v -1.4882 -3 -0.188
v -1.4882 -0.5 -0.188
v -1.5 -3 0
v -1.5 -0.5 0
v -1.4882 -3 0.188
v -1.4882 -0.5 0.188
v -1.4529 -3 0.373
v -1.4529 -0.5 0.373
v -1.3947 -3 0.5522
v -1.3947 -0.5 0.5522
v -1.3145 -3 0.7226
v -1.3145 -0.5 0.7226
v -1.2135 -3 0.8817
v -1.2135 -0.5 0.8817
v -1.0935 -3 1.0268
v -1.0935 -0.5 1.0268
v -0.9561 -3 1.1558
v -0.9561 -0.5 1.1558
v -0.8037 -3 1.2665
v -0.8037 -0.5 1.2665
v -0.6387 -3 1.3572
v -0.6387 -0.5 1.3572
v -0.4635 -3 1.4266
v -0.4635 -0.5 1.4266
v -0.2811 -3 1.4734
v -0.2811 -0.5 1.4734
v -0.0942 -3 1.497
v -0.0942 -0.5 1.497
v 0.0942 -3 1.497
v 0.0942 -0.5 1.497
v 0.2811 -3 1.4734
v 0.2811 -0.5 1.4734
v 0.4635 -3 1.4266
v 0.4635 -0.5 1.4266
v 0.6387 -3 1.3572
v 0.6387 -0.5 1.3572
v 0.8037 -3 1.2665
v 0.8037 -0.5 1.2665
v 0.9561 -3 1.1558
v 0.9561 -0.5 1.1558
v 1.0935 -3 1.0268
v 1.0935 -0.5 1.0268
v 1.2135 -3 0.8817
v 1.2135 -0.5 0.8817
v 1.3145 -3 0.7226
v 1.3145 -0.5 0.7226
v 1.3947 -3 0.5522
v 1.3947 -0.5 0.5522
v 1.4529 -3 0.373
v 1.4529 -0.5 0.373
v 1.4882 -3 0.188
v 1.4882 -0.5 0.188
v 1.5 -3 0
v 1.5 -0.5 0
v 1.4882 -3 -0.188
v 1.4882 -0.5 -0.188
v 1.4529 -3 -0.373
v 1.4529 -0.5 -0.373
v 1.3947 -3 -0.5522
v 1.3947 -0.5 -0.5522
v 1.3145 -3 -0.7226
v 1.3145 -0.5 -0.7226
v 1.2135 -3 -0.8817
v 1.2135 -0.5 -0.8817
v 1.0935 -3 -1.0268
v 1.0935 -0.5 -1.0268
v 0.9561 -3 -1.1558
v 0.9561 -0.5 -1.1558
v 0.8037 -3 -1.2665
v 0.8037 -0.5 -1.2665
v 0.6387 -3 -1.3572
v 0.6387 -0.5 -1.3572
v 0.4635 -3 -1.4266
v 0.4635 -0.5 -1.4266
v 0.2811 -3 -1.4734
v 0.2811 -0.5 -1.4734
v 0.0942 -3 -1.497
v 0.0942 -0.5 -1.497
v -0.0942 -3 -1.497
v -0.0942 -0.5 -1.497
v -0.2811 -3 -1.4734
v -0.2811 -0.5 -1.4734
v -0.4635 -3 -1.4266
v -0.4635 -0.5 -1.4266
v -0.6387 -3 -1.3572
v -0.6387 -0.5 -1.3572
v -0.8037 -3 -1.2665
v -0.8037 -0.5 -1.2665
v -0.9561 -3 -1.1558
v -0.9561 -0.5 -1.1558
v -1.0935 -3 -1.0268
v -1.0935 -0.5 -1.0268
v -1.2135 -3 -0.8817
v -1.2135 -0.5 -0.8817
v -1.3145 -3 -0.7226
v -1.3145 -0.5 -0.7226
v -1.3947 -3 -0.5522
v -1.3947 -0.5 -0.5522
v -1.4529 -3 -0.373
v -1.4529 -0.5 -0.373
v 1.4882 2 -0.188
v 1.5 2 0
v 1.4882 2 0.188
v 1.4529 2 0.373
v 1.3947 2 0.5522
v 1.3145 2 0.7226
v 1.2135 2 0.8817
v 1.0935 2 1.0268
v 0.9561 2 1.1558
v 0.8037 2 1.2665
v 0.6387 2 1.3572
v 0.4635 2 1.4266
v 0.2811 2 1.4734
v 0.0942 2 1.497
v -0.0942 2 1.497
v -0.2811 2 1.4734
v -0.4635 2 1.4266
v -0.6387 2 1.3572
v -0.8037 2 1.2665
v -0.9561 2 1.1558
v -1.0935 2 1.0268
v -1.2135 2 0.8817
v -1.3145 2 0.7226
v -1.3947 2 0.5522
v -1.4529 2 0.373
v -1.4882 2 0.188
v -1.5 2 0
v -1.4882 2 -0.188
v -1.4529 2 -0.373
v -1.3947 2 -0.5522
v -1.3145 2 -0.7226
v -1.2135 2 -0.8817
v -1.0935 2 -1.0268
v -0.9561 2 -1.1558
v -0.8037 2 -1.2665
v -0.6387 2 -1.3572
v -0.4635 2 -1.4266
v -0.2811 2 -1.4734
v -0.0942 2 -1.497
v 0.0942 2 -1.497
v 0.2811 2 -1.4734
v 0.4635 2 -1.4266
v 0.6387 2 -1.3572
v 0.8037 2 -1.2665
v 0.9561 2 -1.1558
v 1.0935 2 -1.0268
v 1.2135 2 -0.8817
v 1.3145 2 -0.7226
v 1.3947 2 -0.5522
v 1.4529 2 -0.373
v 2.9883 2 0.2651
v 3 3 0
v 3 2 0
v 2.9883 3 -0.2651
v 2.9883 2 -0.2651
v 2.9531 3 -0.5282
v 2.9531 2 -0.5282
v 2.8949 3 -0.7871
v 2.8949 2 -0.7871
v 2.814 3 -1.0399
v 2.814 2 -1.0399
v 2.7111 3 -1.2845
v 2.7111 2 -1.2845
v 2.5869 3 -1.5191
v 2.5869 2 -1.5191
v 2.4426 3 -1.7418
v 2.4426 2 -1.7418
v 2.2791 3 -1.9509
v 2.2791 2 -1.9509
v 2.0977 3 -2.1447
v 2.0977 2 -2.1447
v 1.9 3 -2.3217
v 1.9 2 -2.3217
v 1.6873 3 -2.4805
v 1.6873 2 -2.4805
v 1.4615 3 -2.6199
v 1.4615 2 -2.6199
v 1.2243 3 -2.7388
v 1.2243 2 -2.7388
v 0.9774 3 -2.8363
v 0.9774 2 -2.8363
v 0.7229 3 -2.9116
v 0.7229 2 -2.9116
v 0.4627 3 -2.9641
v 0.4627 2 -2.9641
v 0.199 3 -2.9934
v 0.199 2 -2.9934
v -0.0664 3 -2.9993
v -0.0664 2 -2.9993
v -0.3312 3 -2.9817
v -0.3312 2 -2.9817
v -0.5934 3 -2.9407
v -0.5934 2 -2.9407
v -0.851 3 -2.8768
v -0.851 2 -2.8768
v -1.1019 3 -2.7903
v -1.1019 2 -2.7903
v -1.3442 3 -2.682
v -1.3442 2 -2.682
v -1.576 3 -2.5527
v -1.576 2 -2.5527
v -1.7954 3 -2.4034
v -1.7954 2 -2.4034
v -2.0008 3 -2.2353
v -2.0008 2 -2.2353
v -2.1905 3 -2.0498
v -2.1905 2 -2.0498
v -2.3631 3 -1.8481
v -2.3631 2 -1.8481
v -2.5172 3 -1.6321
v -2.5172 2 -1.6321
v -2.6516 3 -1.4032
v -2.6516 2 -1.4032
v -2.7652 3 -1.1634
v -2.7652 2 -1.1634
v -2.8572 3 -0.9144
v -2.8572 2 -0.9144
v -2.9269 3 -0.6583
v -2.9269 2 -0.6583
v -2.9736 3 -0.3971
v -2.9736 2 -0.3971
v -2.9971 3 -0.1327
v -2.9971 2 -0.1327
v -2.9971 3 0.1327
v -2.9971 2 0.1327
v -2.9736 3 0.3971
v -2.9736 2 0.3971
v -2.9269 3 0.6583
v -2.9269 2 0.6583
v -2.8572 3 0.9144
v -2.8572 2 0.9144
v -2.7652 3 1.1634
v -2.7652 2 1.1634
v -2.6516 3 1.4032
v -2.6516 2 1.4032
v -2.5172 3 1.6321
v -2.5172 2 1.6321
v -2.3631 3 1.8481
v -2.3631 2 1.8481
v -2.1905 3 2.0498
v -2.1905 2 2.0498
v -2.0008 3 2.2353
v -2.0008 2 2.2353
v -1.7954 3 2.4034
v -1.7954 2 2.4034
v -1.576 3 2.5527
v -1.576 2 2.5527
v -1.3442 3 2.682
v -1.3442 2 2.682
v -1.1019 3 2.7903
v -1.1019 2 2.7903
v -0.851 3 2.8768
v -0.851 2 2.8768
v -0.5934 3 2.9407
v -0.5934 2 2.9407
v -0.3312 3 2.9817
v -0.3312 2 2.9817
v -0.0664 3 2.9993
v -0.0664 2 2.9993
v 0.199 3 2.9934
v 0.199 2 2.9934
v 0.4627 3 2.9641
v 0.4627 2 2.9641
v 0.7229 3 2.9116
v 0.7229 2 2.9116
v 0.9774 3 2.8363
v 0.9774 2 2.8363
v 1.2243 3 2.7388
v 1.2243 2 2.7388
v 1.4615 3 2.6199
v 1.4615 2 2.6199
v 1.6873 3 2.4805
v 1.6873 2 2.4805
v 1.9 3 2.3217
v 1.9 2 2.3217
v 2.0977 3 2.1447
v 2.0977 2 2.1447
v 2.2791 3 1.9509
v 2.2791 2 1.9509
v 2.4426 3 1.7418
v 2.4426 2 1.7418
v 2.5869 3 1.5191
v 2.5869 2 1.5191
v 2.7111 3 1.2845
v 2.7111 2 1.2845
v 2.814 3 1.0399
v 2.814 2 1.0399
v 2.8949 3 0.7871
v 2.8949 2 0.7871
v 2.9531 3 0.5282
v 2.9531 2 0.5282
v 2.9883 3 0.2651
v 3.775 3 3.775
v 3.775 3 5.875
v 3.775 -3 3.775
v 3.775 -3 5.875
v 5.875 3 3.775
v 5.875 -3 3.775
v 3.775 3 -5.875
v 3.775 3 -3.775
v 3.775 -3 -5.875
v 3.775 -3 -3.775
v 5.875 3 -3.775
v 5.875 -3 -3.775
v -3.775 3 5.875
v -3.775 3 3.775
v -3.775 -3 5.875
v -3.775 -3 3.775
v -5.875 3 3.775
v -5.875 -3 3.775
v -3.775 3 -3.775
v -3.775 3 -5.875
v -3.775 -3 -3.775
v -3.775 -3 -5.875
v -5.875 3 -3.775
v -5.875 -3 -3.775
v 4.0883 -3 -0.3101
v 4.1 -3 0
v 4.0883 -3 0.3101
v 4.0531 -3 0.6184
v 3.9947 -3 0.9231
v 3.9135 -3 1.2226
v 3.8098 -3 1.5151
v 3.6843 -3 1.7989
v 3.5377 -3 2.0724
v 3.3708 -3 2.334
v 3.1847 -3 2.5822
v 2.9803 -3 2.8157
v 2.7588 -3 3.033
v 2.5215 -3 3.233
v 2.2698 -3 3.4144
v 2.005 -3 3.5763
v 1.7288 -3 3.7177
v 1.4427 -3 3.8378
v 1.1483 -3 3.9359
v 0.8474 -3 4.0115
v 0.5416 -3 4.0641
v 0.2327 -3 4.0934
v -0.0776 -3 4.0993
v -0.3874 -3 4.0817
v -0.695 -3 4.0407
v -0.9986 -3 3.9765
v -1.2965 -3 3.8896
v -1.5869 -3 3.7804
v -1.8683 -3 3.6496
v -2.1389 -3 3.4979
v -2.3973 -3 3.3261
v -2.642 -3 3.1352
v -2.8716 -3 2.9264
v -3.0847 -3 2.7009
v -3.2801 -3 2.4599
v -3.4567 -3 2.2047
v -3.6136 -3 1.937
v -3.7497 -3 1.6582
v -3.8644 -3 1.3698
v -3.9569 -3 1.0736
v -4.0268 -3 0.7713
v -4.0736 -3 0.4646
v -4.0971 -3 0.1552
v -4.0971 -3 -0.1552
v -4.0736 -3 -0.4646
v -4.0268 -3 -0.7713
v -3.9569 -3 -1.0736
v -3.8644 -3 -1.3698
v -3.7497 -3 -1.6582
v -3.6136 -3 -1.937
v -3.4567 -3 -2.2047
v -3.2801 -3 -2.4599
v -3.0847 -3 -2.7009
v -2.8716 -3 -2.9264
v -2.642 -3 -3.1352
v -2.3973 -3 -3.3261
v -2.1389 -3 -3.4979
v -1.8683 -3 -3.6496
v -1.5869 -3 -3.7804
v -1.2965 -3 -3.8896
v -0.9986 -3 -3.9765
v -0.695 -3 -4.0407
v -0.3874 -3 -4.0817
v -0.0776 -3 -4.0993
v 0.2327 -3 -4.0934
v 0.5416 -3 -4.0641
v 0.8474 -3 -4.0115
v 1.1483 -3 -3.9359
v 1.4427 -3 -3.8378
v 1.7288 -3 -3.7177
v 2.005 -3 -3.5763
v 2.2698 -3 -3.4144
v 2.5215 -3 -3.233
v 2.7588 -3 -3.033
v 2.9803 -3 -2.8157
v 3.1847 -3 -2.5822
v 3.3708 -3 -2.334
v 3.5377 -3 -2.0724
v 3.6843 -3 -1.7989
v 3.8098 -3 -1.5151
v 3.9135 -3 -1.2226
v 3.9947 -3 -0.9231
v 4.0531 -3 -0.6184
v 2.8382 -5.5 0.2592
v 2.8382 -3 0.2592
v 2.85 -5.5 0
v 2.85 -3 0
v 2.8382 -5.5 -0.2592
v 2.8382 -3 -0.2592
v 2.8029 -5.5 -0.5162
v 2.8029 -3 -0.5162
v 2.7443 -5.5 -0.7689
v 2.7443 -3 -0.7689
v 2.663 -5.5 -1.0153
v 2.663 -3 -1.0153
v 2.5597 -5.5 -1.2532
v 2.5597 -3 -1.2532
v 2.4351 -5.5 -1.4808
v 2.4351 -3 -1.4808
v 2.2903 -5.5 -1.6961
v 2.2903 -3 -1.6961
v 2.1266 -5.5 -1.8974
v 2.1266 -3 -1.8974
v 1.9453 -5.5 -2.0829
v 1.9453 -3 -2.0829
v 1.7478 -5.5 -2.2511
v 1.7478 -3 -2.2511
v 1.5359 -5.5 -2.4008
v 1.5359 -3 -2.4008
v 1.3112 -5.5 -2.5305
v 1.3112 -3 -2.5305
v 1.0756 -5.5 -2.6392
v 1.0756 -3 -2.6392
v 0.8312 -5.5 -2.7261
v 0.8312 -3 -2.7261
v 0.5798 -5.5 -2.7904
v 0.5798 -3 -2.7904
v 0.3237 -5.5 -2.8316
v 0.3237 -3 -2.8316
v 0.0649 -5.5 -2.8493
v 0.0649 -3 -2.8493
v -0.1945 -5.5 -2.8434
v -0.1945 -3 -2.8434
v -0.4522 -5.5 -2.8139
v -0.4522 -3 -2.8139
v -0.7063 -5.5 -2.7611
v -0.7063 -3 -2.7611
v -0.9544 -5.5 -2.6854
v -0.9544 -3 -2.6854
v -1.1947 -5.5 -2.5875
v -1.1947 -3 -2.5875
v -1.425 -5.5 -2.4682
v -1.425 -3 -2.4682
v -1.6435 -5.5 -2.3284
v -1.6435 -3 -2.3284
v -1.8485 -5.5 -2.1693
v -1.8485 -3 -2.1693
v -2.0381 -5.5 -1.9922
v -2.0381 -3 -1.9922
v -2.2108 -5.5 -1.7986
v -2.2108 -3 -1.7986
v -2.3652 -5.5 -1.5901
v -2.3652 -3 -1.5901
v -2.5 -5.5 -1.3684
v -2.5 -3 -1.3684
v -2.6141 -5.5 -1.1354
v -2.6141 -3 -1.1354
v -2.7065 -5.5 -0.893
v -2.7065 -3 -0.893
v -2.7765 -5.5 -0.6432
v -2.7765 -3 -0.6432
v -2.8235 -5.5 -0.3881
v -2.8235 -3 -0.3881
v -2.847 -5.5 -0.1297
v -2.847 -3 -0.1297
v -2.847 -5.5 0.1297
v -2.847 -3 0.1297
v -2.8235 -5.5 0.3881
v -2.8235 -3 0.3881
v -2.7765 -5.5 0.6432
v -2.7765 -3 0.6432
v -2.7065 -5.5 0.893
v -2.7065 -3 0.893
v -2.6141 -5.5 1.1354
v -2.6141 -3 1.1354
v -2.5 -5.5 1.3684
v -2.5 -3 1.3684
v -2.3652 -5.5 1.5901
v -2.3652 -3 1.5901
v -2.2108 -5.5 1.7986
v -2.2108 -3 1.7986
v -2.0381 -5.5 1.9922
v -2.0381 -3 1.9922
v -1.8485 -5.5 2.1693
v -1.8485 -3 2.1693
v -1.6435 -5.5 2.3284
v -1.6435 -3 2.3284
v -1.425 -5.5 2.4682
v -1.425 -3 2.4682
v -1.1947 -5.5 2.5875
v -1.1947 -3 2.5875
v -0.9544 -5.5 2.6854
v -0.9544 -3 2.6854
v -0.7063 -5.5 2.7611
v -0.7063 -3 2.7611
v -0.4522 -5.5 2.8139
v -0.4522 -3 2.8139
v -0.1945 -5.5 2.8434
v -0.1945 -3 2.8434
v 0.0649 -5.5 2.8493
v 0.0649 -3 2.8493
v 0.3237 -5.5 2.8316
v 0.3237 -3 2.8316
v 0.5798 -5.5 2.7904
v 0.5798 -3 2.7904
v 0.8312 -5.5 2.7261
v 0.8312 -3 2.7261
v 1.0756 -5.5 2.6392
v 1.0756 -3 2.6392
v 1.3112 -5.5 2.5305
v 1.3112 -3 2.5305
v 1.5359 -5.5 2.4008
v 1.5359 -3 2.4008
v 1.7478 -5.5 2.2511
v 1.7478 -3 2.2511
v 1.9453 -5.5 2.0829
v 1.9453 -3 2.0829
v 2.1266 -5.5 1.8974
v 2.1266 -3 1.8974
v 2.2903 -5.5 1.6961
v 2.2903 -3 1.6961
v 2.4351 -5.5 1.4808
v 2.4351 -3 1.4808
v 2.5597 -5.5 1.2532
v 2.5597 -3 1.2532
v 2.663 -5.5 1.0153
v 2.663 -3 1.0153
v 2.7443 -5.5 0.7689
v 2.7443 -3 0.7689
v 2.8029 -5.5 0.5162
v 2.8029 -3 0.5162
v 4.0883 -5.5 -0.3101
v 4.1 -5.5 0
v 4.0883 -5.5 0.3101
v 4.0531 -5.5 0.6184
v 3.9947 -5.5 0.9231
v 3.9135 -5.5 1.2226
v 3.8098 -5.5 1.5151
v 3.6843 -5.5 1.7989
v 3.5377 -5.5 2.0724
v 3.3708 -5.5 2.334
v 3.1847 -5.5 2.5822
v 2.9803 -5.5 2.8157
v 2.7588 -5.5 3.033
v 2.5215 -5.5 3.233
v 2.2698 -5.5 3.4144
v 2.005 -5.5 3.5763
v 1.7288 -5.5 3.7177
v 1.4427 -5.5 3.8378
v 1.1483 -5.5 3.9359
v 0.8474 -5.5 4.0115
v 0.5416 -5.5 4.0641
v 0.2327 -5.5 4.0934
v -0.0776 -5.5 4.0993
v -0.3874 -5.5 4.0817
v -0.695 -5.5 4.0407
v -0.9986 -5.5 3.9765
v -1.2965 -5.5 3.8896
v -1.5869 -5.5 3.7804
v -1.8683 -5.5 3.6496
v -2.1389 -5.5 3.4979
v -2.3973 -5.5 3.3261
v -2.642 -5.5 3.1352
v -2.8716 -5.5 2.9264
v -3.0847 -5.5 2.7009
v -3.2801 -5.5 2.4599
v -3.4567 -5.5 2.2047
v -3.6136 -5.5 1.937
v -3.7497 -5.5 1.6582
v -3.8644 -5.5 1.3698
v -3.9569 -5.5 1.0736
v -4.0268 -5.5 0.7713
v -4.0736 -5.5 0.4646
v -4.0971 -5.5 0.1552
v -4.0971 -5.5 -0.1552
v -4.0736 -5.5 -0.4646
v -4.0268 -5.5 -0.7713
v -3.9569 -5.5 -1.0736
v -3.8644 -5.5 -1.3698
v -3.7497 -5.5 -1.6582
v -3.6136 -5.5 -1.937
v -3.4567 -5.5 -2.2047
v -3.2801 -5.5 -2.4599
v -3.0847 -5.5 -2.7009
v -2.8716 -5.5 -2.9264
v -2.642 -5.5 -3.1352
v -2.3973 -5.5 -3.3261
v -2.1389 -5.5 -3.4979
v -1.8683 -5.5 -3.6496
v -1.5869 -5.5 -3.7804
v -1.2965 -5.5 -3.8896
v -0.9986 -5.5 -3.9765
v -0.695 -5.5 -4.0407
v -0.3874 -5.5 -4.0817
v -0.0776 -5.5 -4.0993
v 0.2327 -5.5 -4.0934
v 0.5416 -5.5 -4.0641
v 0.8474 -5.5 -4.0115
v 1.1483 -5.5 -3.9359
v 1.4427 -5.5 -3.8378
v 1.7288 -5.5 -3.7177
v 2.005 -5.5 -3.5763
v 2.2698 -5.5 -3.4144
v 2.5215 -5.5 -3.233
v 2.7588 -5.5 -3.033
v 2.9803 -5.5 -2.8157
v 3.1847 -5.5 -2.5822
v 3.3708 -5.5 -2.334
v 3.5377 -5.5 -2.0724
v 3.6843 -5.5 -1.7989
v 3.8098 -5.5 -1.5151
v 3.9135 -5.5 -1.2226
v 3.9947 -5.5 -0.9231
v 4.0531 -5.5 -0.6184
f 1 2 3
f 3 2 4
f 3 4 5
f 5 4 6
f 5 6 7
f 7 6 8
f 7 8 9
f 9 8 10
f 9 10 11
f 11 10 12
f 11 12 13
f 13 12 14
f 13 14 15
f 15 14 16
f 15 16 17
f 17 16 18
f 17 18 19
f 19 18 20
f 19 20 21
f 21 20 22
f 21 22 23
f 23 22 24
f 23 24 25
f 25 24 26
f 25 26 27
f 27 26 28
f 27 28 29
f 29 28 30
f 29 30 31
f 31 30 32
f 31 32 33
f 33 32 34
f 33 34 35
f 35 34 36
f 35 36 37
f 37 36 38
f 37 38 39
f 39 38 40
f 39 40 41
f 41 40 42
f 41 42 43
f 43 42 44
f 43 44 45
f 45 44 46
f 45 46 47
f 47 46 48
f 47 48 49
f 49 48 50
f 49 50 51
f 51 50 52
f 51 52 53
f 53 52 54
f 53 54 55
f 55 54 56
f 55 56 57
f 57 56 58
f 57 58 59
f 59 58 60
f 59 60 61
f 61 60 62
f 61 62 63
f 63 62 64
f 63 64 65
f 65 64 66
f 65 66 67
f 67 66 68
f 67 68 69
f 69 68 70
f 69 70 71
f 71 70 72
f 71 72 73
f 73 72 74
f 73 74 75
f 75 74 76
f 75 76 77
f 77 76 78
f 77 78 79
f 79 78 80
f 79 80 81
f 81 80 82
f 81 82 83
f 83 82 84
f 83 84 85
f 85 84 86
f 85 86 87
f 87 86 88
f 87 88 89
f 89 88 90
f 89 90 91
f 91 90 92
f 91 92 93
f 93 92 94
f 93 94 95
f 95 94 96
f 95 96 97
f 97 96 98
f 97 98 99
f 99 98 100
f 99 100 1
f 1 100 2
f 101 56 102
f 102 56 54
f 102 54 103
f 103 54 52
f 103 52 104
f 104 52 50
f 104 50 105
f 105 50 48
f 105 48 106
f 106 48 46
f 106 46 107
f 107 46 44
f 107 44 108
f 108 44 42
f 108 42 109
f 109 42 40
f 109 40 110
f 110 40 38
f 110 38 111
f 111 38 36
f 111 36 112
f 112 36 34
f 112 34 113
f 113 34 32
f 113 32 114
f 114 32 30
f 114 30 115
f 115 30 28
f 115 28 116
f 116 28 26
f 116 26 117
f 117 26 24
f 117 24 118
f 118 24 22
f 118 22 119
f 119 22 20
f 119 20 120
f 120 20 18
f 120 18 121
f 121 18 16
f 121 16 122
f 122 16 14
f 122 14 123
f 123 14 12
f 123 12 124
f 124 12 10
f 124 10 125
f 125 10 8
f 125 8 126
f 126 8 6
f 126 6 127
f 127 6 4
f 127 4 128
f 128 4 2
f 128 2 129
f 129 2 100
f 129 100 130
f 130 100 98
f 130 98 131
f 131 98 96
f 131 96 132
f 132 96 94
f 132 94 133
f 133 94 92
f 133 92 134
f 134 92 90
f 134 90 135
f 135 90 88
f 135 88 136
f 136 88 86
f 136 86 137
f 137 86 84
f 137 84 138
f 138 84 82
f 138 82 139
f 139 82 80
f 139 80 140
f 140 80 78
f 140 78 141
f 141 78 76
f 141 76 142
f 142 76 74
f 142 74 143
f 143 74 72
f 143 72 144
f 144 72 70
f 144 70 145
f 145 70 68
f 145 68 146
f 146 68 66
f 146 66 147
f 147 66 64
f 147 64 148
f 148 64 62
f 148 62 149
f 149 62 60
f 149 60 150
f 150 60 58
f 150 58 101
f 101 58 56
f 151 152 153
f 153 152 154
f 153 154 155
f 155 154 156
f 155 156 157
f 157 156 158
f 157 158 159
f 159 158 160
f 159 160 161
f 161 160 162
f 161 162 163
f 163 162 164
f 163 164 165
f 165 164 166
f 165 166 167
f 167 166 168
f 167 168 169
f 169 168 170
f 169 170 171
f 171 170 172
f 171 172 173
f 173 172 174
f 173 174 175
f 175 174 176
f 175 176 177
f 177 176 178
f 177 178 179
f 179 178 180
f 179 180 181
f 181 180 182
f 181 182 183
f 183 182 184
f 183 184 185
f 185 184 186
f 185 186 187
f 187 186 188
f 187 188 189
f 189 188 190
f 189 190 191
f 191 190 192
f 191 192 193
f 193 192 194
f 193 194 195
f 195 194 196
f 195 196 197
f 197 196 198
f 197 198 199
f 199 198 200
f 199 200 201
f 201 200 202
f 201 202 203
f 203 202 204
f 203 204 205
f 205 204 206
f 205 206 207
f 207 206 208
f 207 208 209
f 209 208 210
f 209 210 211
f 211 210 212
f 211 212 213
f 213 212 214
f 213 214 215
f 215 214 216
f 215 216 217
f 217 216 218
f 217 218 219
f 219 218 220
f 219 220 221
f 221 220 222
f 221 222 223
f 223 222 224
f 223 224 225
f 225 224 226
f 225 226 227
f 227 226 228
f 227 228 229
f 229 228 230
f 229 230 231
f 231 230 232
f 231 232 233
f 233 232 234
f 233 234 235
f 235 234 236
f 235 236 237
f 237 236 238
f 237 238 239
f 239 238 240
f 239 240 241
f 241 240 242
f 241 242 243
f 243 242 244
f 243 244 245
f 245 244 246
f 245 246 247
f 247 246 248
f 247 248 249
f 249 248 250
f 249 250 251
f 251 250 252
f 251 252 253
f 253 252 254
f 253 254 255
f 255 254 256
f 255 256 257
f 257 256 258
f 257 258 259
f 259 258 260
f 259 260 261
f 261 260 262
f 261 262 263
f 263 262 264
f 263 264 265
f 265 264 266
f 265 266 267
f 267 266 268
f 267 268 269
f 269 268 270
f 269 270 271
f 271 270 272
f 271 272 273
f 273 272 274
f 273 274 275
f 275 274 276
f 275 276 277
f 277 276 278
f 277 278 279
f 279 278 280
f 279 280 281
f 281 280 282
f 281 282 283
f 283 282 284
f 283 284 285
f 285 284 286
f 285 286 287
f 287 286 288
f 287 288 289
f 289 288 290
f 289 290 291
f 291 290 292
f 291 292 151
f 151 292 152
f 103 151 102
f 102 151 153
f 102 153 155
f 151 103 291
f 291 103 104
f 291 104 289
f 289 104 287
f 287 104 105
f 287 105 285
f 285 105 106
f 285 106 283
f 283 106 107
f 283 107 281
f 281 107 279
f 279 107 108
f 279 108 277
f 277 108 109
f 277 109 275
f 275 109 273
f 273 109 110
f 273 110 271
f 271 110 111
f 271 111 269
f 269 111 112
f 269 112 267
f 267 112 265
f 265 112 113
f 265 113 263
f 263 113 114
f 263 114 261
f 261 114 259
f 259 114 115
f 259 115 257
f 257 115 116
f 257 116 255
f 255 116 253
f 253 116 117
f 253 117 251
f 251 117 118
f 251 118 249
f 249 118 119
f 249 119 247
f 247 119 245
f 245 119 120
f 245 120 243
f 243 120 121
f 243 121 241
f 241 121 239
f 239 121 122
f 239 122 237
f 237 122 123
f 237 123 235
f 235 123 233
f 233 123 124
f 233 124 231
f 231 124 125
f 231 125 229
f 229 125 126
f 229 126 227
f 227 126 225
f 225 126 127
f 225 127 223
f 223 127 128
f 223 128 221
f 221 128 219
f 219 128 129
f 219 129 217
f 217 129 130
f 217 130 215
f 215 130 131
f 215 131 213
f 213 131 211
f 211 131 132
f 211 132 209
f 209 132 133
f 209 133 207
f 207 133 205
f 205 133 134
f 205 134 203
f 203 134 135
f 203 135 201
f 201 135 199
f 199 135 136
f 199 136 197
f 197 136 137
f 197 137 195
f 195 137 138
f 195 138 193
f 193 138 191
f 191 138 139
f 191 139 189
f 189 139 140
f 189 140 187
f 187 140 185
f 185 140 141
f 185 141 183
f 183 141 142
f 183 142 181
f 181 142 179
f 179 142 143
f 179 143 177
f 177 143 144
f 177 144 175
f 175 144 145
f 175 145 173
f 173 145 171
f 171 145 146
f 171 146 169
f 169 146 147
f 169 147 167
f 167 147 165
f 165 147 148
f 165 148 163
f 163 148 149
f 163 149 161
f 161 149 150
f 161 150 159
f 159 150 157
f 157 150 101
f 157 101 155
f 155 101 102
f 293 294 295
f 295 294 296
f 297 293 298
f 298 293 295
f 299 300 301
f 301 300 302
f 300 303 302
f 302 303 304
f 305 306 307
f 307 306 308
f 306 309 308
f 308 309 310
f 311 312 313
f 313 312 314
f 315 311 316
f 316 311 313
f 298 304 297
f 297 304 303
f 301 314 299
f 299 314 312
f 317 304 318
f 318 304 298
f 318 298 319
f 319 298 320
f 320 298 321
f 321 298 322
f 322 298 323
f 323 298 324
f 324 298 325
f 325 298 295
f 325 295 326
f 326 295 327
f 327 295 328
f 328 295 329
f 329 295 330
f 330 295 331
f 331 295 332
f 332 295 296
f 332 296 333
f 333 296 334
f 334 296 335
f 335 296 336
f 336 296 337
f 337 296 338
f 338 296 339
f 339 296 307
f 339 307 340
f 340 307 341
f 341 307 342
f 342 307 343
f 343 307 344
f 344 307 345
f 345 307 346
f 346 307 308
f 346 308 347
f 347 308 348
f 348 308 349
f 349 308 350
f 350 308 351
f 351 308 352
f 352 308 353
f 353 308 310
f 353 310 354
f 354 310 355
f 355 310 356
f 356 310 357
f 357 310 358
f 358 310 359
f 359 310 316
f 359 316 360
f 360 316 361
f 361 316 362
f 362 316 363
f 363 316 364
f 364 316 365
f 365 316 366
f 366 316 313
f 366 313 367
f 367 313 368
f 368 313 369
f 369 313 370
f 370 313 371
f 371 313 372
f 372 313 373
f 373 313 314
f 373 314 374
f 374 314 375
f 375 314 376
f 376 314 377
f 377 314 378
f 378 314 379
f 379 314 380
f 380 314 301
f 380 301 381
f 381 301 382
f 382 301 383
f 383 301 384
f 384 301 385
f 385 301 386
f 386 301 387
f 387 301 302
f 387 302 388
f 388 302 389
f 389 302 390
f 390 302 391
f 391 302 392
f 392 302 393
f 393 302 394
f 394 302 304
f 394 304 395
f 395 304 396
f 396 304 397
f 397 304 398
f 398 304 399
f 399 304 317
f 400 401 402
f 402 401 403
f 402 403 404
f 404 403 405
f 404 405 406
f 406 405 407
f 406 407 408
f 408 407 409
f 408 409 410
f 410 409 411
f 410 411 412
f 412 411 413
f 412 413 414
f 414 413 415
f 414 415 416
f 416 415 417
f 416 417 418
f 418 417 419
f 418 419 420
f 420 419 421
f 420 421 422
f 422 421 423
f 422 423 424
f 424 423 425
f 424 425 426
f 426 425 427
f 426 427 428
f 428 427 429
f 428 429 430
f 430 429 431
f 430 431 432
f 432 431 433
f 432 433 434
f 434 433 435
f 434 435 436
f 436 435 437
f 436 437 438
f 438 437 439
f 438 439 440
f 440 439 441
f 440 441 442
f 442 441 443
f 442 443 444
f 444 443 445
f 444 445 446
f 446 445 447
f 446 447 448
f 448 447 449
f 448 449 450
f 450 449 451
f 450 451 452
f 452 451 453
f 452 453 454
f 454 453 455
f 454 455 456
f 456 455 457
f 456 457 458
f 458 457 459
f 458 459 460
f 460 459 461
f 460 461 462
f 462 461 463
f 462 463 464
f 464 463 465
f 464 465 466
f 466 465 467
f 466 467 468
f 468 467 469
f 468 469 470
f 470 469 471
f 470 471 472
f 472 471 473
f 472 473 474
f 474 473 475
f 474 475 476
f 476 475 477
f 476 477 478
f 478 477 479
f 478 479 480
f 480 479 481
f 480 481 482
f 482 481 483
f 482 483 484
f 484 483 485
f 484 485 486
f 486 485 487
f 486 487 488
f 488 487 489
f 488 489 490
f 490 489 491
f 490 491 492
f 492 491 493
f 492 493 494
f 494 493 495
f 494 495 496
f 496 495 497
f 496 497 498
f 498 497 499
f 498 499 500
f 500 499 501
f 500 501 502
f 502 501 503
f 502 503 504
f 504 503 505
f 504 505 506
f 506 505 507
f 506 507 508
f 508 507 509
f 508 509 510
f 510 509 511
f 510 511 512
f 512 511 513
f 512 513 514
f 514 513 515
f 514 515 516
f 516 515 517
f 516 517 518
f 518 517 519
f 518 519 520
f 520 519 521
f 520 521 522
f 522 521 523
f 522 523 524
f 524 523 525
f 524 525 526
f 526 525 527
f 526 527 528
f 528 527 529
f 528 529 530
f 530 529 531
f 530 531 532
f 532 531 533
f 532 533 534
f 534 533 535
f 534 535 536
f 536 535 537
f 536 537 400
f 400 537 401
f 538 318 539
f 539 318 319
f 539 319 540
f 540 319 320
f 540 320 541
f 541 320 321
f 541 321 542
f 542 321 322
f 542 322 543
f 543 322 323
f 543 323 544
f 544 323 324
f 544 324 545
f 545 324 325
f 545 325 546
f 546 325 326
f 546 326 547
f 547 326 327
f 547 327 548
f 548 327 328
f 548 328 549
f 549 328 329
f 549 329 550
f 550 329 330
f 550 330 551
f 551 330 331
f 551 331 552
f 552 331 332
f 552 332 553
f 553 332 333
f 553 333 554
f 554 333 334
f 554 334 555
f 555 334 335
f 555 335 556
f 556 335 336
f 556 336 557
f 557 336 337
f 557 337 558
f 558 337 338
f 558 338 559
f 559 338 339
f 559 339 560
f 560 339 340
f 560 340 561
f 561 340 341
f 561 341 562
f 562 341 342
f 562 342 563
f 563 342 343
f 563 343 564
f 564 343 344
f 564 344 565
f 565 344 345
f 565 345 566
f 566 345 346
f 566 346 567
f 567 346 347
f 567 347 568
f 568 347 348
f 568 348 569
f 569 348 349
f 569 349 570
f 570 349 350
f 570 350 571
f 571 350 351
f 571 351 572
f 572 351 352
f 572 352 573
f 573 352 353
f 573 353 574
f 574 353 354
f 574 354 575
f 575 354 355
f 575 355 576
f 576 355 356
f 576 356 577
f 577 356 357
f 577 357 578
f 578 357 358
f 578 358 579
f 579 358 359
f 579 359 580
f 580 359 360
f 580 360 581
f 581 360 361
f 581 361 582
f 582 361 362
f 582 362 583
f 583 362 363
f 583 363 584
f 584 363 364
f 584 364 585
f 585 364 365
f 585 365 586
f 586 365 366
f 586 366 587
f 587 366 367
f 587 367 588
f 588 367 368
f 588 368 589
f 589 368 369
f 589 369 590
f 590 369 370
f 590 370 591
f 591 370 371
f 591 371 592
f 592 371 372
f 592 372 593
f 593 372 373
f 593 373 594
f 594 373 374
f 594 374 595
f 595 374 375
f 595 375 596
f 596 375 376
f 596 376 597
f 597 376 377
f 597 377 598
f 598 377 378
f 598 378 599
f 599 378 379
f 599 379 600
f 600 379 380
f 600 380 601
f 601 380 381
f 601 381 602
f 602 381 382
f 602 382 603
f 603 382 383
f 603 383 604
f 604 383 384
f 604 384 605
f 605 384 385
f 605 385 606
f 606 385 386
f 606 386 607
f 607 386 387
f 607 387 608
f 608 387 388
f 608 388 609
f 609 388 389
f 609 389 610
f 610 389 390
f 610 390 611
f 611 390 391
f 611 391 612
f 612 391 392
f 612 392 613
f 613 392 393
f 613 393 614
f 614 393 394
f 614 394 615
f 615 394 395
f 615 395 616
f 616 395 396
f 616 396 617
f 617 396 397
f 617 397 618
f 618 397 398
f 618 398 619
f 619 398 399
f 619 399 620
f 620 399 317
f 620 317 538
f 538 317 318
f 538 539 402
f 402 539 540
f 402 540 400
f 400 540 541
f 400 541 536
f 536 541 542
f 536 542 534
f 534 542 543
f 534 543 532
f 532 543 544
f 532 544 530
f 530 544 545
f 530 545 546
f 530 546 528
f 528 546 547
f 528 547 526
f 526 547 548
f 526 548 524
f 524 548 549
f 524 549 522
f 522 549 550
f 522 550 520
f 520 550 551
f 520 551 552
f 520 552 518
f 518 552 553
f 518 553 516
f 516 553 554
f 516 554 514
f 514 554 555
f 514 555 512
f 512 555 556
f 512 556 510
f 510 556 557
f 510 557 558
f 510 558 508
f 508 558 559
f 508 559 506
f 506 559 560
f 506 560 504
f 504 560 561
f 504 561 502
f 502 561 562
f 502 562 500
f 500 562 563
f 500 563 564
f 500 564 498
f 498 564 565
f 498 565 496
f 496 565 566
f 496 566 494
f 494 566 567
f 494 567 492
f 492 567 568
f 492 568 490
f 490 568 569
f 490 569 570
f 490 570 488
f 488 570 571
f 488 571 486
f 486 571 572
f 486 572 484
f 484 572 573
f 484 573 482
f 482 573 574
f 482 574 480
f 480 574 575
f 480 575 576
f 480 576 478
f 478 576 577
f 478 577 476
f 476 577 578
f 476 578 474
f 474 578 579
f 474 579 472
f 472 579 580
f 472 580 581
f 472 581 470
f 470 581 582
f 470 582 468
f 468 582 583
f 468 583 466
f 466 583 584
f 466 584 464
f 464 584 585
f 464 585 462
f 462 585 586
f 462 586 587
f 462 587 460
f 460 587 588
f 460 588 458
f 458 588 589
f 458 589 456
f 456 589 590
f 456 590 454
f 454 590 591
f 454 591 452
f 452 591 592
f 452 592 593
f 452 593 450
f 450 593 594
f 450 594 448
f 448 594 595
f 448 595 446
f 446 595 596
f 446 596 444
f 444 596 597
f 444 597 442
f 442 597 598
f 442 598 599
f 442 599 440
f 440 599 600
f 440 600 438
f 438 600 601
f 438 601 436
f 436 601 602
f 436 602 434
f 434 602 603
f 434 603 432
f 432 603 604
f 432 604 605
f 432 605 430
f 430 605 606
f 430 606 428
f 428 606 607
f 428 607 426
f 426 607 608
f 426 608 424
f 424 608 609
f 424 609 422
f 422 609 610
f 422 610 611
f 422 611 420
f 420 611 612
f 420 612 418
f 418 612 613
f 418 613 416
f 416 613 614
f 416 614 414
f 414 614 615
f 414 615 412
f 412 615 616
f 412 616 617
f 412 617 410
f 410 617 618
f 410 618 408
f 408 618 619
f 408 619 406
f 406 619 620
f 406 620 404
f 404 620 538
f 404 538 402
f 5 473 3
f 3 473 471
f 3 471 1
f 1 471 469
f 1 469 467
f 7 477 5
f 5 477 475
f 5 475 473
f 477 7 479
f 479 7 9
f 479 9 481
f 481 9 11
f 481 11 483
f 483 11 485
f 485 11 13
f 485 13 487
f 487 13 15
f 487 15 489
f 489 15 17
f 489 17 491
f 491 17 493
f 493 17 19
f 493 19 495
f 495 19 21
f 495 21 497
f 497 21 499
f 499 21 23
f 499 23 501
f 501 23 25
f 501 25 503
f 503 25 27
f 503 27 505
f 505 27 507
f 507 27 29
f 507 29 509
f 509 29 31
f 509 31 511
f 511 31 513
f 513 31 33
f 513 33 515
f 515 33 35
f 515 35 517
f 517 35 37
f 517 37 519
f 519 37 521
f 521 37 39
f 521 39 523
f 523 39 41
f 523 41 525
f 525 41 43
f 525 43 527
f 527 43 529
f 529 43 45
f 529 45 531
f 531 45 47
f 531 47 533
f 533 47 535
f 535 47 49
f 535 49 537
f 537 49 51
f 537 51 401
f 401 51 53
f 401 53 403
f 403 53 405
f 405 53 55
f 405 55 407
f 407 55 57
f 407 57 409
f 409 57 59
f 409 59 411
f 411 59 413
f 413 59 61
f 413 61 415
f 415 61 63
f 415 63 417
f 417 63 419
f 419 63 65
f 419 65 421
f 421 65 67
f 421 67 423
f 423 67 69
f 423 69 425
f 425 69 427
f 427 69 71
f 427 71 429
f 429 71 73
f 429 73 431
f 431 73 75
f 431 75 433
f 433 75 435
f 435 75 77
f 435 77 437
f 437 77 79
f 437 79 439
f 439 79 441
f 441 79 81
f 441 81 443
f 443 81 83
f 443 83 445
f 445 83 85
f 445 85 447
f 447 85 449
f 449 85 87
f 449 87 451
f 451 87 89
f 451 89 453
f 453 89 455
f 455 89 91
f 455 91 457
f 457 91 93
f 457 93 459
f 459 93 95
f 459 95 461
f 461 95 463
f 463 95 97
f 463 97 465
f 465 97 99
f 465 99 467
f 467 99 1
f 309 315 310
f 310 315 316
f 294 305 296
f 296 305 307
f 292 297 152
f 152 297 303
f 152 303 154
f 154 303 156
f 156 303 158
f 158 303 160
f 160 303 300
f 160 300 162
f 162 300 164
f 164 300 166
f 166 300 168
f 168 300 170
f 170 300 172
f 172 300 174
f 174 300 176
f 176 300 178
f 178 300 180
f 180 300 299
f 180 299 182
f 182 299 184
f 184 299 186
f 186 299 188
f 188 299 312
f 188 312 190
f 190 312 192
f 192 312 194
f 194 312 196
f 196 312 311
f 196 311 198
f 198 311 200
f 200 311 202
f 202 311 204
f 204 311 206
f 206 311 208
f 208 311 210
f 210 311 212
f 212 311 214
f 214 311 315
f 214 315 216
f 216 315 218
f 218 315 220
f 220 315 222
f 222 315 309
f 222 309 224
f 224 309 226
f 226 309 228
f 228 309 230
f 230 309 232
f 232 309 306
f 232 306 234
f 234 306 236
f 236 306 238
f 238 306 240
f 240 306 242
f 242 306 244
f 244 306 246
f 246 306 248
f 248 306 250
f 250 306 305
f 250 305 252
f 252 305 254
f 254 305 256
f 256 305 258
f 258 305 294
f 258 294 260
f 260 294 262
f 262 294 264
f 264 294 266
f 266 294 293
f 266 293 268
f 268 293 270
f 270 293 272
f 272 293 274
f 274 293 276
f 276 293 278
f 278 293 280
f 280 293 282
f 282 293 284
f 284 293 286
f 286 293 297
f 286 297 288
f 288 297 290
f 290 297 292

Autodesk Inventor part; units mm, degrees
ref_plane "YZ Plane" through (0, 0, 0) normal (1, 0, 0) x (0, 1, 0)
ref_plane "XZ Plane" through (0, 0, 0) normal (0, 1, 0) x (-1, 0, 0)
sketch "Skizze1" plane through (0, 0, 0) normal (0, 1, 0) x (-1, 0, 0)
  circle A0 centre (0, 0) radius 3.5
  line L0 (5.875, -5.875) -> (-5.875, -5.875)
  line L1 (-5.875, -5.875) -> (-5.875, 5.875)
  line L2 (-5.875, 5.875) -> (5.875, 5.875)
  line L3 (5.875, 5.875) -> (5.875, -5.875)
  line L4 (8.225, 0) -> (-8.225, 0) projected
  line L5 (0.75, 5.875) -> (-0.75, 5.875)
  line L6 (0, -8.225) -> (0, 8.225) projected
  point P0 (0.75, -5.875)
  point P1 (-5.875, -0.75)
  point P2 (5.875, -0.75)
  dimension "d1" = 7
  dimension "d2" = 11.75
  dimension "d3" = 11.75
extrude "Extrusion1" add sketch "Skizze1" along normal mid plane 6
sketch "Skizze2" plane through (0, 3, 0) normal (0, 1, 0) x (1, 0, 0)
  circle A0 centre (0, 0) radius 3
  dimension "d14" = 6
ref_plane "Arbeitsebene1" through (0, -0.5, 0) normal (0, 1, 0) x (1, 0, 0)
sketch "Skizze4" plane through (0, -3, 0) normal (0, -1, 0) x (1, 0, 0)
  circle A0 centre (0, 0) radius 2.85
  circle A1 centre (0, 0) radius 1.4 projected
  circle A2 centre (0, 0) radius 4.1
  dimension "d20" = 5.7
  dimension "d21" = 8.2
extrude "Extrusion4" add sketch "Skizze4" along normal blind 2.5 contours A2
sketch "Skizze5" plane through (0, 3, 0) normal (0, 1, 0) x (1, 0, 0)
  line L0 (-5.875, 5.875) -> (5.875, 5.875) projected
  line L1 (-5.875, 5.875) -> (-3.775, 5.875)
  line L2 (-3.775, 5.875) -> (-3.775, 3.775)
  line L3 (-3.775, 3.775) -> (-5.875, 3.775)
  line L4 (-5.875, 3.775) -> (-5.875, 5.875)
  line L5 (-5.875, 5.875) -> (5.875, 5.875) projected
  line L6 (5.875, 5.875) -> (3.775, 5.875)
  line L7 (3.775, 5.875) -> (3.775, 3.775)
  line L8 (3.775, 3.775) -> (5.875, 3.775)
  line L9 (5.875, 3.775) -> (5.875, 5.875)
  line L10 (-5.875, -5.875) -> (-5.875, 5.875) projected
  line L11 (-5.875, -5.875) -> (-3.775, -5.875)
  line L12 (-3.775, -5.875) -> (-3.775, -3.775)
  line L13 (-3.775, -3.775) -> (-5.875, -3.775)
  line L14 (-5.875, -3.775) -> (-5.875, -5.875)
  line L15 (5.875, -5.875) -> (-5.875, -5.875) projected
  line L16 (5.875, -5.875) -> (3.775, -5.875)
  line L17 (3.775, -5.875) -> (3.775, -3.775)
  line L18 (3.775, -3.775) -> (5.875, -3.775)
  line L19 (5.875, -3.775) -> (5.875, -5.875)
  point P0 (0, 0)
  point P1 (-0.75, 5.75)
  point P2 (0.75, 5.75)
  point P3 (-5.75, -0.75)
  point P4 (0.75, -5.75)
  dimension "d24" = 2.1
  dimension "d25" = 2.1
  dimension "d26" = 2.1
  dimension "d27" = 2.1
  dimension "d28" = 2.1
  dimension "d29" = 2.1
  dimension "d30" = 2.1
  dimension "d31" = 2.1
extrude "Extrusion5" cut sketch "Skizze5" against normal blind 6
extrude "Extrusion6" cut sketch "Skizze2" against normal blind 1
sketch "Skizze6" plane through (0, 2, 0) normal (0, 1, 0) x (1, 0, 0)
  circle A0 centre (0, 0) radius 1.5
  dimension "d38" = 3
extrude "Extrusion7" cut sketch "Skizze6" against normal up to surface (5 mm away)
properties part number "_3D-Druck"
